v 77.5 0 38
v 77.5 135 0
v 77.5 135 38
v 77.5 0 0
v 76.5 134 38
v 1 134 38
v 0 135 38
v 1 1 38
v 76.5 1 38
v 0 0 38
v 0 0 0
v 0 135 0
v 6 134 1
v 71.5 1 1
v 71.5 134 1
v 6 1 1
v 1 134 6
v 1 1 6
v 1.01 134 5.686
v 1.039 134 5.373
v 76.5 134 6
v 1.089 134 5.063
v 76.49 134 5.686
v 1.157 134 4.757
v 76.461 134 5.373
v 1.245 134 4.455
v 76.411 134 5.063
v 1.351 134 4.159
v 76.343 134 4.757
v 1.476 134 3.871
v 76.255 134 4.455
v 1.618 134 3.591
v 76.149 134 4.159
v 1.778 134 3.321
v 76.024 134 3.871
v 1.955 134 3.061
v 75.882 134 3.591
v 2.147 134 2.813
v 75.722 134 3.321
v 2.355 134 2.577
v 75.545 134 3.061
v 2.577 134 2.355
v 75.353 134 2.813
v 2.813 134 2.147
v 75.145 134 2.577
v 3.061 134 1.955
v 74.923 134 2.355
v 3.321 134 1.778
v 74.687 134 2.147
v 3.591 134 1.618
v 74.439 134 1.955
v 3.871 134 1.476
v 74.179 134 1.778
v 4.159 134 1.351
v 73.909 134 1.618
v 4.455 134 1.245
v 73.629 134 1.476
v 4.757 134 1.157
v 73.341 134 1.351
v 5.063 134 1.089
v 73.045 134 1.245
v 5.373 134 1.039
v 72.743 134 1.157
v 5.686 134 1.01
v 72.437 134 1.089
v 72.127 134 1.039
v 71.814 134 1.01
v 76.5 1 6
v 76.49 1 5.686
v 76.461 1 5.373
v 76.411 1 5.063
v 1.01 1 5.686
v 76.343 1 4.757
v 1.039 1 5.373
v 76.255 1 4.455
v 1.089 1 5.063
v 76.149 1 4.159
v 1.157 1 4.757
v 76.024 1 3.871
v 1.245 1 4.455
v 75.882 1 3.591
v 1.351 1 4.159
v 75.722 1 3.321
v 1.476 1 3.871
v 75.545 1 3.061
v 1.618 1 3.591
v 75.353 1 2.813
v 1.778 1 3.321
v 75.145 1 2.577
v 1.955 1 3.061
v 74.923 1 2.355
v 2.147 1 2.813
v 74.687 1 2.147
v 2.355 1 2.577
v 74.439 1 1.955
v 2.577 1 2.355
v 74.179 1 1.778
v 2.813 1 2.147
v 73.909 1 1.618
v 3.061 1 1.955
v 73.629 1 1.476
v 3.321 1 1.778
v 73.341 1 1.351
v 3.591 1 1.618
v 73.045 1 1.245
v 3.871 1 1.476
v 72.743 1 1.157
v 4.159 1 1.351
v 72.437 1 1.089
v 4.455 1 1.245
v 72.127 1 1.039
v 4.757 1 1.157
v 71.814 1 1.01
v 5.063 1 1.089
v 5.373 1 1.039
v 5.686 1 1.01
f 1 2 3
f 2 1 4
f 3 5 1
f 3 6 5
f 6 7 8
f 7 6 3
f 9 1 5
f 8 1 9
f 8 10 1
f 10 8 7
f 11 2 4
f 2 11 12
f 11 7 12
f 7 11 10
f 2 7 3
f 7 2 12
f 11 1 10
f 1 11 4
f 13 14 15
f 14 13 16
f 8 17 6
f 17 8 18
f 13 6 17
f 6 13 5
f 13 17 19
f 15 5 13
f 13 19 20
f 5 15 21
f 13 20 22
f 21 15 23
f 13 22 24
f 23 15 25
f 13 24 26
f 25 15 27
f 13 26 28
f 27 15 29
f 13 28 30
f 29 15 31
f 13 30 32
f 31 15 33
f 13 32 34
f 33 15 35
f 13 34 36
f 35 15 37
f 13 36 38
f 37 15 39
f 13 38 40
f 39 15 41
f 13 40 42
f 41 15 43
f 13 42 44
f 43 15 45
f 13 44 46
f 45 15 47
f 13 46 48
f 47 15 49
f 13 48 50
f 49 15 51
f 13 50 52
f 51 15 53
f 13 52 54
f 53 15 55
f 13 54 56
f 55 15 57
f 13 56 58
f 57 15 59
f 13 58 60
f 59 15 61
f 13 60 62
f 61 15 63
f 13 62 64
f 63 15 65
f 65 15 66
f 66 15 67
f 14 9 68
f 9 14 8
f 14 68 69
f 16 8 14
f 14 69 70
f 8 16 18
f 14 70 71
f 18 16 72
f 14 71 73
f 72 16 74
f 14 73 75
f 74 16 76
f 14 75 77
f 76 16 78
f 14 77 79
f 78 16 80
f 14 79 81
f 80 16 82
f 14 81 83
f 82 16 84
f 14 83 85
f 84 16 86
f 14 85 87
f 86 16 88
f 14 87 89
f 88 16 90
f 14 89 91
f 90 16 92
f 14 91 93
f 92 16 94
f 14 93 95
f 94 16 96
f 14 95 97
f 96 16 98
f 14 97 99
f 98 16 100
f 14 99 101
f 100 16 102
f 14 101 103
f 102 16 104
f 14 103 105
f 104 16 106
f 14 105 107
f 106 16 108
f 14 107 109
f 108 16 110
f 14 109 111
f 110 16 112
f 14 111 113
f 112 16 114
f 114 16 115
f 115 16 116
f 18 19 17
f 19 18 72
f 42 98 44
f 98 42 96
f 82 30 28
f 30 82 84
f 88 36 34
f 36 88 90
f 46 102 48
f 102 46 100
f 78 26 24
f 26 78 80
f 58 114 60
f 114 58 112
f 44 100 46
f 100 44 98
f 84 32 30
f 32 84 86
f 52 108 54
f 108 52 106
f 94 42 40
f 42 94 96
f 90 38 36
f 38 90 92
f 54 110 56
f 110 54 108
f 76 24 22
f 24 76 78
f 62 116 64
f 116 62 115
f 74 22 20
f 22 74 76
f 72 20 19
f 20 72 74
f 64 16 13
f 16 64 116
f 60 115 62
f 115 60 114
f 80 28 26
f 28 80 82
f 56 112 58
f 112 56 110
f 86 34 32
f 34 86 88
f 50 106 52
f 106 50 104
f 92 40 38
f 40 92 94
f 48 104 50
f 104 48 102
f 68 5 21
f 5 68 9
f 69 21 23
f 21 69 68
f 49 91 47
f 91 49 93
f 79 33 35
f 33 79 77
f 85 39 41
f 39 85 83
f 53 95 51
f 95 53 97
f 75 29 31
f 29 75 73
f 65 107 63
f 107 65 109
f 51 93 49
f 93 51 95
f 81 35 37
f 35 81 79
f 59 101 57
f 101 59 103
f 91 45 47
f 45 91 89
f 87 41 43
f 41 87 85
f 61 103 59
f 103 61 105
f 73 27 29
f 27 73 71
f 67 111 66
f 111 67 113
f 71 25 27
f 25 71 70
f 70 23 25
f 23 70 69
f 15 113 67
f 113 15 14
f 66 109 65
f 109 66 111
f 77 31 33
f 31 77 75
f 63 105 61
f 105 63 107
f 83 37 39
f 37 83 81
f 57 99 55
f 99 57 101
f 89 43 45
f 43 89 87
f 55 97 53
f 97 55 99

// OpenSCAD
include <boardgame_insert_toolkit_lib.2.scad>;

// determines whether lids are output.
g_b_print_lid = true;

// determines whether boxes are output.
g_b_print_box = true; 

// Focus on one box
g_isolated_print_box = ""; 

// Used to visualize how all of the boxes fit together. 
g_b_visualization = false;          
        
// this is the outer wall thickness. 
//Default = 1.5mm
g_wall_thickness = 1.0;

// The tolerance value is extra space put between planes of the lid and box that fit together.
// Increase the tolerance to loosen the fit and decrease it to tighten it.
//
// Note that the tolerance is applied exclusively to the lid.
// So if the lid is too tight or too loose, change this value ( up for looser fit, down for tighter fit ) and 
// you only need to reprint the lid.
// 
// The exception is the stackable box, where the bottom of the box is the lid of the box below,
// in which case the tolerance also affects that box bottom.
//
g_tolerance = 0.15;

// This adjusts the position of the lid detents downward. 
// The larger the value, the bigger the gap between the lid and the box.
g_tolerance_detents_pos = 0.1;

aw_size_x = 77.5; // 180.0; // 308.0 - 40.0 - 40.0 - 24.0 - 24.0 - 24.0 = 156 (minus two for division by 3) = 156;
aw_size_y = 135.0;
aw_size_z = 38.0;


data =
  [
    [
      "simple box",
      [
        [ BOX_SIZE_XYZ, [aw_size_x, aw_size_y, aw_size_z] ],
        [ BOX_NO_LID_B, t],
        [
          BOX_COMPONENT,
          [
            [
              CMP_COMPARTMENT_SIZE_XYZ,
              [
                (aw_size_x - 1.0 - 1.0),
                (aw_size_y - 1.0 - 1.0),
                aw_size_z - g_wall_thickness
              ]
            ],
            [ CMP_NUM_COMPARTMENTS_XY, [1, 1] ],
            [ CMP_SHAPE, FILLET ],
            [ CMP_FILLET_RADIUS, 5.0 ],
            [ POSITION_XY, [0, CENTER] ],
          ]
        ],
      ]
    ]
  ];

MakeAll();
